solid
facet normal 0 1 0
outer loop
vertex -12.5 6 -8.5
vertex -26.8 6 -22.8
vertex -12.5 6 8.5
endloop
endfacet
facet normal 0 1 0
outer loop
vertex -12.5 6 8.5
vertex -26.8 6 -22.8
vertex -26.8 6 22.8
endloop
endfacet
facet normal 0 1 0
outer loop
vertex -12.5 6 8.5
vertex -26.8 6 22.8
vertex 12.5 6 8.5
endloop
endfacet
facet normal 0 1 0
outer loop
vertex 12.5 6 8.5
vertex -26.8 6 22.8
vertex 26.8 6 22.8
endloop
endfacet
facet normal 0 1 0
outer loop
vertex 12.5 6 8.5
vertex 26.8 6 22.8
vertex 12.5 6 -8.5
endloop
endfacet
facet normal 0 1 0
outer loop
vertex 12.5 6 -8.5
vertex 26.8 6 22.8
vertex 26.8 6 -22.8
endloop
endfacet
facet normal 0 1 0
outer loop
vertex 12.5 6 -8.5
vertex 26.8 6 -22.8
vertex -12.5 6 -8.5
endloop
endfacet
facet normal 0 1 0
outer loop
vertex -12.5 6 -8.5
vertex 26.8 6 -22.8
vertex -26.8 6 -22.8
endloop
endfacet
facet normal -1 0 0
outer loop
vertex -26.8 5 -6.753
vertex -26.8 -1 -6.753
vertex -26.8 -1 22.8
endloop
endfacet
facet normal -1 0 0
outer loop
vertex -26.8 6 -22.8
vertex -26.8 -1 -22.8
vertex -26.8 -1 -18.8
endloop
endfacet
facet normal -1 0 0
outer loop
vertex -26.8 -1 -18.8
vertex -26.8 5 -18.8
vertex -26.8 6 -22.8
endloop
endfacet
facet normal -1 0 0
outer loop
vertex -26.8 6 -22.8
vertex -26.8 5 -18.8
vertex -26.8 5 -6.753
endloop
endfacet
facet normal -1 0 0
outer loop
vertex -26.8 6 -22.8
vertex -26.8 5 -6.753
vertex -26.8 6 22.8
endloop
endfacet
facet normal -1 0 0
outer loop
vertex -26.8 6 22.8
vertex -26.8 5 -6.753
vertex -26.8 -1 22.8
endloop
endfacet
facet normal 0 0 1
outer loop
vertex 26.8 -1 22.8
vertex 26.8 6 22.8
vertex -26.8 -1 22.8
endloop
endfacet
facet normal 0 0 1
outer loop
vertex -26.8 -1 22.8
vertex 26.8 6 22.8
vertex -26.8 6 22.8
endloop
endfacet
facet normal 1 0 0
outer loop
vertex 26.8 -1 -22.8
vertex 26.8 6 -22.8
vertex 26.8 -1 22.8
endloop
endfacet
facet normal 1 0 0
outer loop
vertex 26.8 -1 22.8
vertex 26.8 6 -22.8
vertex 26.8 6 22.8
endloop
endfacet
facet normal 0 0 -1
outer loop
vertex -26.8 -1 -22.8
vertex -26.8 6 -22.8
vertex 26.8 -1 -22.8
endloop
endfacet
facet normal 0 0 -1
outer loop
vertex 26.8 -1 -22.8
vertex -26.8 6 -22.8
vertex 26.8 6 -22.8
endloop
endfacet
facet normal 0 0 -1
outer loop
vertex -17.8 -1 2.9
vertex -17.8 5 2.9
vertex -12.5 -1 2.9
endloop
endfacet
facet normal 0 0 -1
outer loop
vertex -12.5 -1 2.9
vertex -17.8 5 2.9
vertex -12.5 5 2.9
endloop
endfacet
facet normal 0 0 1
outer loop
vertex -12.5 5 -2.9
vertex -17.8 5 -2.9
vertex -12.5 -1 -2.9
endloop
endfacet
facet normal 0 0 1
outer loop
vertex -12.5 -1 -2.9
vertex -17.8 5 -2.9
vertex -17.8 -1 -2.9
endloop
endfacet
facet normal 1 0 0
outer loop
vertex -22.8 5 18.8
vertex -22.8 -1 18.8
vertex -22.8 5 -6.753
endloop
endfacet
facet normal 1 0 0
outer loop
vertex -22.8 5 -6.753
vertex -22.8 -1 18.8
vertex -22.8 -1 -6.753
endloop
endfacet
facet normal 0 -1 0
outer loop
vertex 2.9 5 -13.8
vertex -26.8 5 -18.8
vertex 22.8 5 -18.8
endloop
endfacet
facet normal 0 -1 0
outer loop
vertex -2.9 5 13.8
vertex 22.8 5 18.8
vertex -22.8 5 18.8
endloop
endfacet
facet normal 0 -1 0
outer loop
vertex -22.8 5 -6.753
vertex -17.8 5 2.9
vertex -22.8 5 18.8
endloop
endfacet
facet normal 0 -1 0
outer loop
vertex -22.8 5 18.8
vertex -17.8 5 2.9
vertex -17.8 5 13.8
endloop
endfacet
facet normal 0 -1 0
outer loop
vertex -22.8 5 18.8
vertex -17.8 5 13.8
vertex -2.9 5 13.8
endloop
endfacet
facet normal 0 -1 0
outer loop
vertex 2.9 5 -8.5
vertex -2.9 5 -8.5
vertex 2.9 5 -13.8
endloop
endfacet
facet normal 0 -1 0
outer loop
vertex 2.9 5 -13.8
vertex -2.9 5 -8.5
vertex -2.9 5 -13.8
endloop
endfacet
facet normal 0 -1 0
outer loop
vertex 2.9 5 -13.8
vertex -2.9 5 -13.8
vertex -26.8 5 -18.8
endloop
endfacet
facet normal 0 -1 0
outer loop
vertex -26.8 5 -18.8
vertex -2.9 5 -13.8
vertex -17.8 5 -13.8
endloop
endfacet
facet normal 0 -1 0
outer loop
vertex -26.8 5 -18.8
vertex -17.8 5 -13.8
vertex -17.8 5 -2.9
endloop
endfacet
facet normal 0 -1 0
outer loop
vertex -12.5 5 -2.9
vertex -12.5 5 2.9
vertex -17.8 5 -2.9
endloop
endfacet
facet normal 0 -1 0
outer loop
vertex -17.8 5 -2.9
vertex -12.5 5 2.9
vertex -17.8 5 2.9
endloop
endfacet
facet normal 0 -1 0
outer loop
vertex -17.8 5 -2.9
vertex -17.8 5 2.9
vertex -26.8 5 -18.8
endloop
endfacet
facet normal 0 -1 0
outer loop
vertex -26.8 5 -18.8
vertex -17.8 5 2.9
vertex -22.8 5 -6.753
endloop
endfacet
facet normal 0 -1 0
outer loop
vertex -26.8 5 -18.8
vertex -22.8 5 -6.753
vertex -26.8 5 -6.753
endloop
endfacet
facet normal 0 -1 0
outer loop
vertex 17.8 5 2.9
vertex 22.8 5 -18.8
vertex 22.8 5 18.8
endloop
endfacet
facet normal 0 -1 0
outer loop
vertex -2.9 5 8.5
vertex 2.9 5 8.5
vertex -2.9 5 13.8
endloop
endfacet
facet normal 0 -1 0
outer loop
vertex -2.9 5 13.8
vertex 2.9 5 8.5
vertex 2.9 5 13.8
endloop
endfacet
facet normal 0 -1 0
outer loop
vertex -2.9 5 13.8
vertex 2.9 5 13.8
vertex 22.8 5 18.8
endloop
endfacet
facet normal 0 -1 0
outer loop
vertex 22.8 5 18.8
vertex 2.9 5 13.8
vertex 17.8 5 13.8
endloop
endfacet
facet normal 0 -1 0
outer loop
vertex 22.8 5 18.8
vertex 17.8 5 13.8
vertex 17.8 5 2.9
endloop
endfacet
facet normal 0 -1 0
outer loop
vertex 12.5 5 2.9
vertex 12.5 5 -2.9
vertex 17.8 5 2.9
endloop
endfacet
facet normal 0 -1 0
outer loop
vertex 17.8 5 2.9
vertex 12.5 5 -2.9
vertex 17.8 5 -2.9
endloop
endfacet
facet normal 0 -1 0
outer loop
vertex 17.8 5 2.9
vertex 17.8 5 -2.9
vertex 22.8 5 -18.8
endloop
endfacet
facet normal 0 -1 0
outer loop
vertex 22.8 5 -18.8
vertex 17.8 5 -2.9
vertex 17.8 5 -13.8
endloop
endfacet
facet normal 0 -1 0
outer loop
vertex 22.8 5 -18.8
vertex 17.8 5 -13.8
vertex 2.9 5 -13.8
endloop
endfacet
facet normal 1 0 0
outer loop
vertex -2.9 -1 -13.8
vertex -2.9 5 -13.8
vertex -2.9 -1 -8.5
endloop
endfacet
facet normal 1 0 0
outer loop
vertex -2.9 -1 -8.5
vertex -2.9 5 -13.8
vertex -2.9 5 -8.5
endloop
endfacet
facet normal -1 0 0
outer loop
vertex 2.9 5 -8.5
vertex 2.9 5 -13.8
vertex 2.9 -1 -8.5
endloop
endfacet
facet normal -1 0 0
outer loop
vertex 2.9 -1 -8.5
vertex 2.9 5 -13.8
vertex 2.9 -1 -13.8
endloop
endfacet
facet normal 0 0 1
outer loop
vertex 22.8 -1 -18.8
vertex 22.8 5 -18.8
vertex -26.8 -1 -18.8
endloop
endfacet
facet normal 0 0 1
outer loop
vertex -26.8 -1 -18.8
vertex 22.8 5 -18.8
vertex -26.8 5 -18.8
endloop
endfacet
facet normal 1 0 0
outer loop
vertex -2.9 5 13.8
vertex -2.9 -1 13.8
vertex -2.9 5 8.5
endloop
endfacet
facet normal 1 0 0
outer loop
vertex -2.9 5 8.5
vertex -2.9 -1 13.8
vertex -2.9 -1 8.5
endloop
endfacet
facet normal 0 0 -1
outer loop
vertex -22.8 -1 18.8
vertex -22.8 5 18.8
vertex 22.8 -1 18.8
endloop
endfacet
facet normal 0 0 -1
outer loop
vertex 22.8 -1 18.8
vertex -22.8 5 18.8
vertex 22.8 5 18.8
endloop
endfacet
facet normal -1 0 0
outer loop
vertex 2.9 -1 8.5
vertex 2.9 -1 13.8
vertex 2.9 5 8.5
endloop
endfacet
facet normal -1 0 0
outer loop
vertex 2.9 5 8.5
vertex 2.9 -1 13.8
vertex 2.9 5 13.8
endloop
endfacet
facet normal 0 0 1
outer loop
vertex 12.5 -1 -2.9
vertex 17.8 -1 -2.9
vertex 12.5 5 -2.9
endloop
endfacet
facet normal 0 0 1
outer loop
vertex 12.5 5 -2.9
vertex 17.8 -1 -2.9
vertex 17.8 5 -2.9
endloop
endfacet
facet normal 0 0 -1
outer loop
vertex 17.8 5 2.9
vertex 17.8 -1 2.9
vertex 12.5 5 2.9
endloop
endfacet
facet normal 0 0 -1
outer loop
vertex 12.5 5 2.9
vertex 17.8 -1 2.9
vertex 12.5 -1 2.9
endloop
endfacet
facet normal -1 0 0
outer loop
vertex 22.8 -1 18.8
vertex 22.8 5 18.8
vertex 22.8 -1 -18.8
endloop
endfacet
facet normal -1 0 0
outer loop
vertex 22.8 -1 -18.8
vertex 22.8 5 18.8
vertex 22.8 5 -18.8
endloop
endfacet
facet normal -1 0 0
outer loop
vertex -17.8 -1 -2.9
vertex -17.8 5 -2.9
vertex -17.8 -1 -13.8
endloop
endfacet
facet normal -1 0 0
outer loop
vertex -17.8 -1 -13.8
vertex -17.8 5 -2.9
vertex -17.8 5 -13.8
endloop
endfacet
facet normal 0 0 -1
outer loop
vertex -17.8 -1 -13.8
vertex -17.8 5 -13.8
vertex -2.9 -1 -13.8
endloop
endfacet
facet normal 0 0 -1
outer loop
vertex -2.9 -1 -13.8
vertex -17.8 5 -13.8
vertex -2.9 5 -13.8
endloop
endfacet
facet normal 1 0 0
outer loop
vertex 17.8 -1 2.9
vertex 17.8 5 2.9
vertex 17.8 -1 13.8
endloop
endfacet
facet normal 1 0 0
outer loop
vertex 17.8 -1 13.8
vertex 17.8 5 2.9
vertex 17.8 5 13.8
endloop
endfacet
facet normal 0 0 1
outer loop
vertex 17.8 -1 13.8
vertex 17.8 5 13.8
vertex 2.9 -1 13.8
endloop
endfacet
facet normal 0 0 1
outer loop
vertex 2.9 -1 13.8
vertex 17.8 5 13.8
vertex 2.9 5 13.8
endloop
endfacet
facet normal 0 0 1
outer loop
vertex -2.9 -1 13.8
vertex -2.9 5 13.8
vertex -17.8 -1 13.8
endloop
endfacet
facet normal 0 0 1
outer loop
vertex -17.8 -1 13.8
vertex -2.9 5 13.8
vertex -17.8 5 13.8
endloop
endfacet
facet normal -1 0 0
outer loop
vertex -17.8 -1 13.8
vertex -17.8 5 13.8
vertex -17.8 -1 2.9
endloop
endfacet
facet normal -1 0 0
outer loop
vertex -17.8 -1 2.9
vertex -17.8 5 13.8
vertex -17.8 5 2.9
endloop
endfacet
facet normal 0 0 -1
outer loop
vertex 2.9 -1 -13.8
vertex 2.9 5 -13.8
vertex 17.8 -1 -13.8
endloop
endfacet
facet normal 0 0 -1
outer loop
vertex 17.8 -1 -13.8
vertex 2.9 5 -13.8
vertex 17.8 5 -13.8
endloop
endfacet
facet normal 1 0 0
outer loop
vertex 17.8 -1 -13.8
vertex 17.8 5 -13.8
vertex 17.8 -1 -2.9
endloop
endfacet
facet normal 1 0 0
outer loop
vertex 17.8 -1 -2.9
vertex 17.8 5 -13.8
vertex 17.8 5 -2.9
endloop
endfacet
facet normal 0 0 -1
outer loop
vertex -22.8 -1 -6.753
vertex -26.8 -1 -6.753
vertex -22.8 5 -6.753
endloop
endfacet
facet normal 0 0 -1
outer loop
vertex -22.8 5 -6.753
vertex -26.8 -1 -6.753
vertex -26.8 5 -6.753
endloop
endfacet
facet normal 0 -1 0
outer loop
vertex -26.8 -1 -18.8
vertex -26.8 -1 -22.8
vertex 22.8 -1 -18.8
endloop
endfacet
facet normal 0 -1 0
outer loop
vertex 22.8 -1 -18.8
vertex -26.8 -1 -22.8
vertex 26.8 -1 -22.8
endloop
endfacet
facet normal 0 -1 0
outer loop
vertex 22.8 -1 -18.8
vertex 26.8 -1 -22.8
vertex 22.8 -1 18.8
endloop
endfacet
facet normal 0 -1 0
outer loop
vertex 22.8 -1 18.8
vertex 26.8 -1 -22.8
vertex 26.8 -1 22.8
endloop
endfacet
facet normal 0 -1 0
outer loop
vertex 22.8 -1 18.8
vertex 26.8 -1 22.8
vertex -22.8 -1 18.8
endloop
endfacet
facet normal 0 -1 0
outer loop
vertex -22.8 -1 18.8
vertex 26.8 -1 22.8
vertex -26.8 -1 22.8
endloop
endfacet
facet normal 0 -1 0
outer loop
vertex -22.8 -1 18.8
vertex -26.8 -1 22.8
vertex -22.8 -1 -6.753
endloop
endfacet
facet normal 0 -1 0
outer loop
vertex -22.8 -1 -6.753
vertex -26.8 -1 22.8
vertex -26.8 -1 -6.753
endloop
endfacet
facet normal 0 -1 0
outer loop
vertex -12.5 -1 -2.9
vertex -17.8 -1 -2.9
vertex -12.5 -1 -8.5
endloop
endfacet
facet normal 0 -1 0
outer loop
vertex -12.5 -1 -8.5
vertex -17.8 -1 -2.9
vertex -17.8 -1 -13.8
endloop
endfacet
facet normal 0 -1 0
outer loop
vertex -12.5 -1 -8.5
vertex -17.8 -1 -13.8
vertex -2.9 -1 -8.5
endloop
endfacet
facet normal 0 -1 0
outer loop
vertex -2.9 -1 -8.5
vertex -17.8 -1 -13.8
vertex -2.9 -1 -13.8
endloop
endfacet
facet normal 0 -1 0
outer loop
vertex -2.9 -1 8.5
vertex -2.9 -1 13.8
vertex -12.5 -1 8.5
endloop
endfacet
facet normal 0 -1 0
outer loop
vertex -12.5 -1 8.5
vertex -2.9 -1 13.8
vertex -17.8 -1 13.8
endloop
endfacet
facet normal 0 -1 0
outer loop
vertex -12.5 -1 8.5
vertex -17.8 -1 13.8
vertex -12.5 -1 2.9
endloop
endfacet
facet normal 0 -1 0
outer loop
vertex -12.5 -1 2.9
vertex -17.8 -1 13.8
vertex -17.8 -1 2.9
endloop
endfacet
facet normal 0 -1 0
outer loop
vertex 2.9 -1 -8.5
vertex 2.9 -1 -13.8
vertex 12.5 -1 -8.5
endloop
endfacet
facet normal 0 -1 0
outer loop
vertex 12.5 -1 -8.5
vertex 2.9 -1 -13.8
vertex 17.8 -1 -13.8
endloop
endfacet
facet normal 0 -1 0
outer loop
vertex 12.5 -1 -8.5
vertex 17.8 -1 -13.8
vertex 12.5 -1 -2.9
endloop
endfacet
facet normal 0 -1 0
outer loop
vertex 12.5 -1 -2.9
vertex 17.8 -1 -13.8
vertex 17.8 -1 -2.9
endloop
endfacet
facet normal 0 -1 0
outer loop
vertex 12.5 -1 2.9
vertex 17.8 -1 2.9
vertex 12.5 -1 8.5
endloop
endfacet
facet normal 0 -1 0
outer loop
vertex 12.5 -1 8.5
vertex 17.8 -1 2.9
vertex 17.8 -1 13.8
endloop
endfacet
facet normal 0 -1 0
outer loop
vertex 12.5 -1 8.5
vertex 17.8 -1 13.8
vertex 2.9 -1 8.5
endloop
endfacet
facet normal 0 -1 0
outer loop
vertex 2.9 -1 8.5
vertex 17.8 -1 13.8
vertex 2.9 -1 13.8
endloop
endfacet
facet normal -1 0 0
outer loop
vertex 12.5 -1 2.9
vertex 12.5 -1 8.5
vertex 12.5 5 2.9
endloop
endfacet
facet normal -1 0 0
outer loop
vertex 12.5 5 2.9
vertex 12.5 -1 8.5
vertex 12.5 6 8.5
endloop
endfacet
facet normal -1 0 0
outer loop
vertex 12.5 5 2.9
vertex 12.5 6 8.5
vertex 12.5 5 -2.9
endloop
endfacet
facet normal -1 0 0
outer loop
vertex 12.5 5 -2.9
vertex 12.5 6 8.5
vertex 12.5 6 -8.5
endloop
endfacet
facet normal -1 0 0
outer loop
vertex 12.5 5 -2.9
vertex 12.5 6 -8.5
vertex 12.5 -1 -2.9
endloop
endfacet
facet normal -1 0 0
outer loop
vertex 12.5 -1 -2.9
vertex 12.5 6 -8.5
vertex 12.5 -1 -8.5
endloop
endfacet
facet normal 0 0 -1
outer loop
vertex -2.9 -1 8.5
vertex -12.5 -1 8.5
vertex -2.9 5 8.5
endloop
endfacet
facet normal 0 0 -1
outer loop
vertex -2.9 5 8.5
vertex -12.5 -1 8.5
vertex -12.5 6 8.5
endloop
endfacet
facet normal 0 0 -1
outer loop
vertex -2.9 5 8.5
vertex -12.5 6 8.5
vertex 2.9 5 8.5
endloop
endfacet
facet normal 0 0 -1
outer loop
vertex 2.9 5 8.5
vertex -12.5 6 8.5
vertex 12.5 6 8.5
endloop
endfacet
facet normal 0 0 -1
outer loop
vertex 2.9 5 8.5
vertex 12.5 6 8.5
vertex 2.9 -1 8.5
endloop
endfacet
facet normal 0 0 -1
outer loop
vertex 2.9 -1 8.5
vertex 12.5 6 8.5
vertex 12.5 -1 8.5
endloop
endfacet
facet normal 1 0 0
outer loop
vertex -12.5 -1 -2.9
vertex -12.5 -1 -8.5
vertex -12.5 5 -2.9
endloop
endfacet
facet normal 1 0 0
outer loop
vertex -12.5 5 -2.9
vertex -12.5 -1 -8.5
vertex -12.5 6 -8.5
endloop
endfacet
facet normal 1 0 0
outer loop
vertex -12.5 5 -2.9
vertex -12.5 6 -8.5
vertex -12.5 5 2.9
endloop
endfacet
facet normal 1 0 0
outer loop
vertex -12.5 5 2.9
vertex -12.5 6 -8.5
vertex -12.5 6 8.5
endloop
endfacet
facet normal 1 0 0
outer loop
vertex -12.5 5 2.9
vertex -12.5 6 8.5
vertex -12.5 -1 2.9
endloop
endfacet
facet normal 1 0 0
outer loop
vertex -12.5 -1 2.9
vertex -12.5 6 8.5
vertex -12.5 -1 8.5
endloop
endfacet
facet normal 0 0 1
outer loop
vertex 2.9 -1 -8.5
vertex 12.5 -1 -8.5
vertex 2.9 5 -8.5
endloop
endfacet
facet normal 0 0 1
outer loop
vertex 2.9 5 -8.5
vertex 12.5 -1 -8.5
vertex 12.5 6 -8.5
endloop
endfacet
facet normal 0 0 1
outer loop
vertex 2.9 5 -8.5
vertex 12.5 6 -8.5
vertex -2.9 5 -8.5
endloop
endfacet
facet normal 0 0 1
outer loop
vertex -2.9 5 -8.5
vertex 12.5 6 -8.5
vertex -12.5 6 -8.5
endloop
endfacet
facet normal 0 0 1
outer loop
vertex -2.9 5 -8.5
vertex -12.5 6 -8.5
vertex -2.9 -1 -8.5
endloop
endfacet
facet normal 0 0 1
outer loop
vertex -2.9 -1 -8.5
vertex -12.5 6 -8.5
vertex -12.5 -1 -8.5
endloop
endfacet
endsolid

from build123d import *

# Parameters (mm, degrees)
SKETCH1_W           = 53.6
SKETCH1_H           = 45.6
SKETCH1_W_2         = 23.6
SKETCH1_H_2         = 15.6
BOSS_EXTRUDE1_DEPTH = 6
SKETCH4_W           = 11
SKETCH4_H           = 5.8
SKETCH4_W_2         = 5.8
SKETCH4_H_2         = 11
CUT_EXTRUDE1_DEPTH  = 5
CUT_EXTRUDE2_DEPTH  = 5
SKETCH6_W           = 6.037335391
SKETCH6_H           = 12.047111719
CUT_EXTRUDE3_DEPTH  = 5
BOSS_EXTRUDE3_DEPTH = 1
SKETCH8_W           = 25
SKETCH8_H           = 17
CUT_EXTRUDE4_DEPTH  = 36.875897201


with BuildPart() as part:
    # Sketch1 → Boss-Extrude1 (new body)
    with BuildSketch(Plane(origin=(0, 0, 0), x_dir=(1, 0, 0), z_dir=(0, 1, 0))):
        Rectangle(SKETCH1_W, SKETCH1_H)
        Rectangle(SKETCH1_W_2, SKETCH1_H_2, mode=Mode.SUBTRACT)
    extrude(amount=BOSS_EXTRUDE1_DEPTH)

    # Sketch4 → Cut-Extrude1 (cut)
    with BuildSketch(Plane.XZ):
        with Locations((-17.3, 0)):
            Rectangle(SKETCH4_W, SKETCH4_H)
        with Locations((0, -13.3)):
            Rectangle(SKETCH4_W_2, SKETCH4_H_2)
        with Locations((0, 13.3)):
            Rectangle(SKETCH4_W_2, SKETCH4_H_2)
        with Locations((17.3, 0)):
            Rectangle(SKETCH4_W, SKETCH4_H)
    extrude(amount=-CUT_EXTRUDE1_DEPTH, mode=Mode.SUBTRACT)

    # Sketch5 → Cut-Extrude2 (cut)
    with BuildSketch(Plane.XZ):
        Polygon((-2.9, -18.8), (-22.8, -18.8), (-22.8, -2.9), (-17.8, -2.9), (-17.8, -13.8), (-2.9, -13.8), align=None)
        Polygon((-2.9, 18.8), (-2.9, 13.8), (-17.8, 13.8), (-17.8, 2.9), (-22.8, 2.9), (-22.8, 18.8), align=None)
        Polygon((22.8, -18.8), (22.8, -2.9), (17.8, -2.9), (17.8, -13.8), (2.9, -13.8), (2.9, -18.8), align=None)
        Polygon((2.9, 18.8), (2.9, 13.8), (17.8, 13.8), (17.8, 2.9), (22.8, 2.9), (22.8, 18.8), align=None)
    extrude(amount=-CUT_EXTRUDE2_DEPTH, mode=Mode.SUBTRACT)

    # Sketch6 → Cut-Extrude3 (cut)
    with BuildSketch(Plane.XZ):
        with Locations((-25.818667696, -12.776444141)):
            Rectangle(SKETCH6_W, SKETCH6_H)
    extrude(amount=-CUT_EXTRUDE3_DEPTH, mode=Mode.SUBTRACT)

    # Sketch7 → Boss-Extrude3 (add)
    with BuildSketch(Plane.XZ):
        Polygon((22.8, -18.8), (-26.8, -18.8), (-26.8, -22.8), (26.8, -22.8), (26.8, 22.8), (-26.8, 22.8), (-26.8, -6.752888281), (-22.8, -6.752888281), (-22.8, 18.8), (22.8, 18.8), align=None)
        Polygon((-17.8, -2.9), (-17.8, -13.8), (-2.9, -13.8), (-2.9, -7.8), (-11.8, -7.8), (-11.8, -2.9), align=None)
        Polygon((-2.9, 13.8), (-17.8, 13.8), (-17.8, 2.9), (-11.8, 2.9), (-11.8, 7.8), (-2.9, 7.8), align=None)
        Polygon((2.9, -13.8), (17.8, -13.8), (17.8, -2.9), (11.8, -2.9), (11.8, -7.8), (2.9, -7.8), align=None)
        Polygon((17.8, 2.9), (17.8, 13.8), (2.9, 13.8), (2.9, 7.8), (11.8, 7.8), (11.8, 2.9), align=None)
    extrude(amount=BOSS_EXTRUDE3_DEPTH)

    # Sketch8 → Cut-Extrude4 (cut, through all)
    with BuildSketch(Plane(origin=(0, 6, 0), x_dir=(1, 0, 0), z_dir=(0, 1, 0))):
        Rectangle(SKETCH8_W, SKETCH8_H)
    extrude(amount=-CUT_EXTRUDE4_DEPTH, mode=Mode.SUBTRACT)


solid = part.part
